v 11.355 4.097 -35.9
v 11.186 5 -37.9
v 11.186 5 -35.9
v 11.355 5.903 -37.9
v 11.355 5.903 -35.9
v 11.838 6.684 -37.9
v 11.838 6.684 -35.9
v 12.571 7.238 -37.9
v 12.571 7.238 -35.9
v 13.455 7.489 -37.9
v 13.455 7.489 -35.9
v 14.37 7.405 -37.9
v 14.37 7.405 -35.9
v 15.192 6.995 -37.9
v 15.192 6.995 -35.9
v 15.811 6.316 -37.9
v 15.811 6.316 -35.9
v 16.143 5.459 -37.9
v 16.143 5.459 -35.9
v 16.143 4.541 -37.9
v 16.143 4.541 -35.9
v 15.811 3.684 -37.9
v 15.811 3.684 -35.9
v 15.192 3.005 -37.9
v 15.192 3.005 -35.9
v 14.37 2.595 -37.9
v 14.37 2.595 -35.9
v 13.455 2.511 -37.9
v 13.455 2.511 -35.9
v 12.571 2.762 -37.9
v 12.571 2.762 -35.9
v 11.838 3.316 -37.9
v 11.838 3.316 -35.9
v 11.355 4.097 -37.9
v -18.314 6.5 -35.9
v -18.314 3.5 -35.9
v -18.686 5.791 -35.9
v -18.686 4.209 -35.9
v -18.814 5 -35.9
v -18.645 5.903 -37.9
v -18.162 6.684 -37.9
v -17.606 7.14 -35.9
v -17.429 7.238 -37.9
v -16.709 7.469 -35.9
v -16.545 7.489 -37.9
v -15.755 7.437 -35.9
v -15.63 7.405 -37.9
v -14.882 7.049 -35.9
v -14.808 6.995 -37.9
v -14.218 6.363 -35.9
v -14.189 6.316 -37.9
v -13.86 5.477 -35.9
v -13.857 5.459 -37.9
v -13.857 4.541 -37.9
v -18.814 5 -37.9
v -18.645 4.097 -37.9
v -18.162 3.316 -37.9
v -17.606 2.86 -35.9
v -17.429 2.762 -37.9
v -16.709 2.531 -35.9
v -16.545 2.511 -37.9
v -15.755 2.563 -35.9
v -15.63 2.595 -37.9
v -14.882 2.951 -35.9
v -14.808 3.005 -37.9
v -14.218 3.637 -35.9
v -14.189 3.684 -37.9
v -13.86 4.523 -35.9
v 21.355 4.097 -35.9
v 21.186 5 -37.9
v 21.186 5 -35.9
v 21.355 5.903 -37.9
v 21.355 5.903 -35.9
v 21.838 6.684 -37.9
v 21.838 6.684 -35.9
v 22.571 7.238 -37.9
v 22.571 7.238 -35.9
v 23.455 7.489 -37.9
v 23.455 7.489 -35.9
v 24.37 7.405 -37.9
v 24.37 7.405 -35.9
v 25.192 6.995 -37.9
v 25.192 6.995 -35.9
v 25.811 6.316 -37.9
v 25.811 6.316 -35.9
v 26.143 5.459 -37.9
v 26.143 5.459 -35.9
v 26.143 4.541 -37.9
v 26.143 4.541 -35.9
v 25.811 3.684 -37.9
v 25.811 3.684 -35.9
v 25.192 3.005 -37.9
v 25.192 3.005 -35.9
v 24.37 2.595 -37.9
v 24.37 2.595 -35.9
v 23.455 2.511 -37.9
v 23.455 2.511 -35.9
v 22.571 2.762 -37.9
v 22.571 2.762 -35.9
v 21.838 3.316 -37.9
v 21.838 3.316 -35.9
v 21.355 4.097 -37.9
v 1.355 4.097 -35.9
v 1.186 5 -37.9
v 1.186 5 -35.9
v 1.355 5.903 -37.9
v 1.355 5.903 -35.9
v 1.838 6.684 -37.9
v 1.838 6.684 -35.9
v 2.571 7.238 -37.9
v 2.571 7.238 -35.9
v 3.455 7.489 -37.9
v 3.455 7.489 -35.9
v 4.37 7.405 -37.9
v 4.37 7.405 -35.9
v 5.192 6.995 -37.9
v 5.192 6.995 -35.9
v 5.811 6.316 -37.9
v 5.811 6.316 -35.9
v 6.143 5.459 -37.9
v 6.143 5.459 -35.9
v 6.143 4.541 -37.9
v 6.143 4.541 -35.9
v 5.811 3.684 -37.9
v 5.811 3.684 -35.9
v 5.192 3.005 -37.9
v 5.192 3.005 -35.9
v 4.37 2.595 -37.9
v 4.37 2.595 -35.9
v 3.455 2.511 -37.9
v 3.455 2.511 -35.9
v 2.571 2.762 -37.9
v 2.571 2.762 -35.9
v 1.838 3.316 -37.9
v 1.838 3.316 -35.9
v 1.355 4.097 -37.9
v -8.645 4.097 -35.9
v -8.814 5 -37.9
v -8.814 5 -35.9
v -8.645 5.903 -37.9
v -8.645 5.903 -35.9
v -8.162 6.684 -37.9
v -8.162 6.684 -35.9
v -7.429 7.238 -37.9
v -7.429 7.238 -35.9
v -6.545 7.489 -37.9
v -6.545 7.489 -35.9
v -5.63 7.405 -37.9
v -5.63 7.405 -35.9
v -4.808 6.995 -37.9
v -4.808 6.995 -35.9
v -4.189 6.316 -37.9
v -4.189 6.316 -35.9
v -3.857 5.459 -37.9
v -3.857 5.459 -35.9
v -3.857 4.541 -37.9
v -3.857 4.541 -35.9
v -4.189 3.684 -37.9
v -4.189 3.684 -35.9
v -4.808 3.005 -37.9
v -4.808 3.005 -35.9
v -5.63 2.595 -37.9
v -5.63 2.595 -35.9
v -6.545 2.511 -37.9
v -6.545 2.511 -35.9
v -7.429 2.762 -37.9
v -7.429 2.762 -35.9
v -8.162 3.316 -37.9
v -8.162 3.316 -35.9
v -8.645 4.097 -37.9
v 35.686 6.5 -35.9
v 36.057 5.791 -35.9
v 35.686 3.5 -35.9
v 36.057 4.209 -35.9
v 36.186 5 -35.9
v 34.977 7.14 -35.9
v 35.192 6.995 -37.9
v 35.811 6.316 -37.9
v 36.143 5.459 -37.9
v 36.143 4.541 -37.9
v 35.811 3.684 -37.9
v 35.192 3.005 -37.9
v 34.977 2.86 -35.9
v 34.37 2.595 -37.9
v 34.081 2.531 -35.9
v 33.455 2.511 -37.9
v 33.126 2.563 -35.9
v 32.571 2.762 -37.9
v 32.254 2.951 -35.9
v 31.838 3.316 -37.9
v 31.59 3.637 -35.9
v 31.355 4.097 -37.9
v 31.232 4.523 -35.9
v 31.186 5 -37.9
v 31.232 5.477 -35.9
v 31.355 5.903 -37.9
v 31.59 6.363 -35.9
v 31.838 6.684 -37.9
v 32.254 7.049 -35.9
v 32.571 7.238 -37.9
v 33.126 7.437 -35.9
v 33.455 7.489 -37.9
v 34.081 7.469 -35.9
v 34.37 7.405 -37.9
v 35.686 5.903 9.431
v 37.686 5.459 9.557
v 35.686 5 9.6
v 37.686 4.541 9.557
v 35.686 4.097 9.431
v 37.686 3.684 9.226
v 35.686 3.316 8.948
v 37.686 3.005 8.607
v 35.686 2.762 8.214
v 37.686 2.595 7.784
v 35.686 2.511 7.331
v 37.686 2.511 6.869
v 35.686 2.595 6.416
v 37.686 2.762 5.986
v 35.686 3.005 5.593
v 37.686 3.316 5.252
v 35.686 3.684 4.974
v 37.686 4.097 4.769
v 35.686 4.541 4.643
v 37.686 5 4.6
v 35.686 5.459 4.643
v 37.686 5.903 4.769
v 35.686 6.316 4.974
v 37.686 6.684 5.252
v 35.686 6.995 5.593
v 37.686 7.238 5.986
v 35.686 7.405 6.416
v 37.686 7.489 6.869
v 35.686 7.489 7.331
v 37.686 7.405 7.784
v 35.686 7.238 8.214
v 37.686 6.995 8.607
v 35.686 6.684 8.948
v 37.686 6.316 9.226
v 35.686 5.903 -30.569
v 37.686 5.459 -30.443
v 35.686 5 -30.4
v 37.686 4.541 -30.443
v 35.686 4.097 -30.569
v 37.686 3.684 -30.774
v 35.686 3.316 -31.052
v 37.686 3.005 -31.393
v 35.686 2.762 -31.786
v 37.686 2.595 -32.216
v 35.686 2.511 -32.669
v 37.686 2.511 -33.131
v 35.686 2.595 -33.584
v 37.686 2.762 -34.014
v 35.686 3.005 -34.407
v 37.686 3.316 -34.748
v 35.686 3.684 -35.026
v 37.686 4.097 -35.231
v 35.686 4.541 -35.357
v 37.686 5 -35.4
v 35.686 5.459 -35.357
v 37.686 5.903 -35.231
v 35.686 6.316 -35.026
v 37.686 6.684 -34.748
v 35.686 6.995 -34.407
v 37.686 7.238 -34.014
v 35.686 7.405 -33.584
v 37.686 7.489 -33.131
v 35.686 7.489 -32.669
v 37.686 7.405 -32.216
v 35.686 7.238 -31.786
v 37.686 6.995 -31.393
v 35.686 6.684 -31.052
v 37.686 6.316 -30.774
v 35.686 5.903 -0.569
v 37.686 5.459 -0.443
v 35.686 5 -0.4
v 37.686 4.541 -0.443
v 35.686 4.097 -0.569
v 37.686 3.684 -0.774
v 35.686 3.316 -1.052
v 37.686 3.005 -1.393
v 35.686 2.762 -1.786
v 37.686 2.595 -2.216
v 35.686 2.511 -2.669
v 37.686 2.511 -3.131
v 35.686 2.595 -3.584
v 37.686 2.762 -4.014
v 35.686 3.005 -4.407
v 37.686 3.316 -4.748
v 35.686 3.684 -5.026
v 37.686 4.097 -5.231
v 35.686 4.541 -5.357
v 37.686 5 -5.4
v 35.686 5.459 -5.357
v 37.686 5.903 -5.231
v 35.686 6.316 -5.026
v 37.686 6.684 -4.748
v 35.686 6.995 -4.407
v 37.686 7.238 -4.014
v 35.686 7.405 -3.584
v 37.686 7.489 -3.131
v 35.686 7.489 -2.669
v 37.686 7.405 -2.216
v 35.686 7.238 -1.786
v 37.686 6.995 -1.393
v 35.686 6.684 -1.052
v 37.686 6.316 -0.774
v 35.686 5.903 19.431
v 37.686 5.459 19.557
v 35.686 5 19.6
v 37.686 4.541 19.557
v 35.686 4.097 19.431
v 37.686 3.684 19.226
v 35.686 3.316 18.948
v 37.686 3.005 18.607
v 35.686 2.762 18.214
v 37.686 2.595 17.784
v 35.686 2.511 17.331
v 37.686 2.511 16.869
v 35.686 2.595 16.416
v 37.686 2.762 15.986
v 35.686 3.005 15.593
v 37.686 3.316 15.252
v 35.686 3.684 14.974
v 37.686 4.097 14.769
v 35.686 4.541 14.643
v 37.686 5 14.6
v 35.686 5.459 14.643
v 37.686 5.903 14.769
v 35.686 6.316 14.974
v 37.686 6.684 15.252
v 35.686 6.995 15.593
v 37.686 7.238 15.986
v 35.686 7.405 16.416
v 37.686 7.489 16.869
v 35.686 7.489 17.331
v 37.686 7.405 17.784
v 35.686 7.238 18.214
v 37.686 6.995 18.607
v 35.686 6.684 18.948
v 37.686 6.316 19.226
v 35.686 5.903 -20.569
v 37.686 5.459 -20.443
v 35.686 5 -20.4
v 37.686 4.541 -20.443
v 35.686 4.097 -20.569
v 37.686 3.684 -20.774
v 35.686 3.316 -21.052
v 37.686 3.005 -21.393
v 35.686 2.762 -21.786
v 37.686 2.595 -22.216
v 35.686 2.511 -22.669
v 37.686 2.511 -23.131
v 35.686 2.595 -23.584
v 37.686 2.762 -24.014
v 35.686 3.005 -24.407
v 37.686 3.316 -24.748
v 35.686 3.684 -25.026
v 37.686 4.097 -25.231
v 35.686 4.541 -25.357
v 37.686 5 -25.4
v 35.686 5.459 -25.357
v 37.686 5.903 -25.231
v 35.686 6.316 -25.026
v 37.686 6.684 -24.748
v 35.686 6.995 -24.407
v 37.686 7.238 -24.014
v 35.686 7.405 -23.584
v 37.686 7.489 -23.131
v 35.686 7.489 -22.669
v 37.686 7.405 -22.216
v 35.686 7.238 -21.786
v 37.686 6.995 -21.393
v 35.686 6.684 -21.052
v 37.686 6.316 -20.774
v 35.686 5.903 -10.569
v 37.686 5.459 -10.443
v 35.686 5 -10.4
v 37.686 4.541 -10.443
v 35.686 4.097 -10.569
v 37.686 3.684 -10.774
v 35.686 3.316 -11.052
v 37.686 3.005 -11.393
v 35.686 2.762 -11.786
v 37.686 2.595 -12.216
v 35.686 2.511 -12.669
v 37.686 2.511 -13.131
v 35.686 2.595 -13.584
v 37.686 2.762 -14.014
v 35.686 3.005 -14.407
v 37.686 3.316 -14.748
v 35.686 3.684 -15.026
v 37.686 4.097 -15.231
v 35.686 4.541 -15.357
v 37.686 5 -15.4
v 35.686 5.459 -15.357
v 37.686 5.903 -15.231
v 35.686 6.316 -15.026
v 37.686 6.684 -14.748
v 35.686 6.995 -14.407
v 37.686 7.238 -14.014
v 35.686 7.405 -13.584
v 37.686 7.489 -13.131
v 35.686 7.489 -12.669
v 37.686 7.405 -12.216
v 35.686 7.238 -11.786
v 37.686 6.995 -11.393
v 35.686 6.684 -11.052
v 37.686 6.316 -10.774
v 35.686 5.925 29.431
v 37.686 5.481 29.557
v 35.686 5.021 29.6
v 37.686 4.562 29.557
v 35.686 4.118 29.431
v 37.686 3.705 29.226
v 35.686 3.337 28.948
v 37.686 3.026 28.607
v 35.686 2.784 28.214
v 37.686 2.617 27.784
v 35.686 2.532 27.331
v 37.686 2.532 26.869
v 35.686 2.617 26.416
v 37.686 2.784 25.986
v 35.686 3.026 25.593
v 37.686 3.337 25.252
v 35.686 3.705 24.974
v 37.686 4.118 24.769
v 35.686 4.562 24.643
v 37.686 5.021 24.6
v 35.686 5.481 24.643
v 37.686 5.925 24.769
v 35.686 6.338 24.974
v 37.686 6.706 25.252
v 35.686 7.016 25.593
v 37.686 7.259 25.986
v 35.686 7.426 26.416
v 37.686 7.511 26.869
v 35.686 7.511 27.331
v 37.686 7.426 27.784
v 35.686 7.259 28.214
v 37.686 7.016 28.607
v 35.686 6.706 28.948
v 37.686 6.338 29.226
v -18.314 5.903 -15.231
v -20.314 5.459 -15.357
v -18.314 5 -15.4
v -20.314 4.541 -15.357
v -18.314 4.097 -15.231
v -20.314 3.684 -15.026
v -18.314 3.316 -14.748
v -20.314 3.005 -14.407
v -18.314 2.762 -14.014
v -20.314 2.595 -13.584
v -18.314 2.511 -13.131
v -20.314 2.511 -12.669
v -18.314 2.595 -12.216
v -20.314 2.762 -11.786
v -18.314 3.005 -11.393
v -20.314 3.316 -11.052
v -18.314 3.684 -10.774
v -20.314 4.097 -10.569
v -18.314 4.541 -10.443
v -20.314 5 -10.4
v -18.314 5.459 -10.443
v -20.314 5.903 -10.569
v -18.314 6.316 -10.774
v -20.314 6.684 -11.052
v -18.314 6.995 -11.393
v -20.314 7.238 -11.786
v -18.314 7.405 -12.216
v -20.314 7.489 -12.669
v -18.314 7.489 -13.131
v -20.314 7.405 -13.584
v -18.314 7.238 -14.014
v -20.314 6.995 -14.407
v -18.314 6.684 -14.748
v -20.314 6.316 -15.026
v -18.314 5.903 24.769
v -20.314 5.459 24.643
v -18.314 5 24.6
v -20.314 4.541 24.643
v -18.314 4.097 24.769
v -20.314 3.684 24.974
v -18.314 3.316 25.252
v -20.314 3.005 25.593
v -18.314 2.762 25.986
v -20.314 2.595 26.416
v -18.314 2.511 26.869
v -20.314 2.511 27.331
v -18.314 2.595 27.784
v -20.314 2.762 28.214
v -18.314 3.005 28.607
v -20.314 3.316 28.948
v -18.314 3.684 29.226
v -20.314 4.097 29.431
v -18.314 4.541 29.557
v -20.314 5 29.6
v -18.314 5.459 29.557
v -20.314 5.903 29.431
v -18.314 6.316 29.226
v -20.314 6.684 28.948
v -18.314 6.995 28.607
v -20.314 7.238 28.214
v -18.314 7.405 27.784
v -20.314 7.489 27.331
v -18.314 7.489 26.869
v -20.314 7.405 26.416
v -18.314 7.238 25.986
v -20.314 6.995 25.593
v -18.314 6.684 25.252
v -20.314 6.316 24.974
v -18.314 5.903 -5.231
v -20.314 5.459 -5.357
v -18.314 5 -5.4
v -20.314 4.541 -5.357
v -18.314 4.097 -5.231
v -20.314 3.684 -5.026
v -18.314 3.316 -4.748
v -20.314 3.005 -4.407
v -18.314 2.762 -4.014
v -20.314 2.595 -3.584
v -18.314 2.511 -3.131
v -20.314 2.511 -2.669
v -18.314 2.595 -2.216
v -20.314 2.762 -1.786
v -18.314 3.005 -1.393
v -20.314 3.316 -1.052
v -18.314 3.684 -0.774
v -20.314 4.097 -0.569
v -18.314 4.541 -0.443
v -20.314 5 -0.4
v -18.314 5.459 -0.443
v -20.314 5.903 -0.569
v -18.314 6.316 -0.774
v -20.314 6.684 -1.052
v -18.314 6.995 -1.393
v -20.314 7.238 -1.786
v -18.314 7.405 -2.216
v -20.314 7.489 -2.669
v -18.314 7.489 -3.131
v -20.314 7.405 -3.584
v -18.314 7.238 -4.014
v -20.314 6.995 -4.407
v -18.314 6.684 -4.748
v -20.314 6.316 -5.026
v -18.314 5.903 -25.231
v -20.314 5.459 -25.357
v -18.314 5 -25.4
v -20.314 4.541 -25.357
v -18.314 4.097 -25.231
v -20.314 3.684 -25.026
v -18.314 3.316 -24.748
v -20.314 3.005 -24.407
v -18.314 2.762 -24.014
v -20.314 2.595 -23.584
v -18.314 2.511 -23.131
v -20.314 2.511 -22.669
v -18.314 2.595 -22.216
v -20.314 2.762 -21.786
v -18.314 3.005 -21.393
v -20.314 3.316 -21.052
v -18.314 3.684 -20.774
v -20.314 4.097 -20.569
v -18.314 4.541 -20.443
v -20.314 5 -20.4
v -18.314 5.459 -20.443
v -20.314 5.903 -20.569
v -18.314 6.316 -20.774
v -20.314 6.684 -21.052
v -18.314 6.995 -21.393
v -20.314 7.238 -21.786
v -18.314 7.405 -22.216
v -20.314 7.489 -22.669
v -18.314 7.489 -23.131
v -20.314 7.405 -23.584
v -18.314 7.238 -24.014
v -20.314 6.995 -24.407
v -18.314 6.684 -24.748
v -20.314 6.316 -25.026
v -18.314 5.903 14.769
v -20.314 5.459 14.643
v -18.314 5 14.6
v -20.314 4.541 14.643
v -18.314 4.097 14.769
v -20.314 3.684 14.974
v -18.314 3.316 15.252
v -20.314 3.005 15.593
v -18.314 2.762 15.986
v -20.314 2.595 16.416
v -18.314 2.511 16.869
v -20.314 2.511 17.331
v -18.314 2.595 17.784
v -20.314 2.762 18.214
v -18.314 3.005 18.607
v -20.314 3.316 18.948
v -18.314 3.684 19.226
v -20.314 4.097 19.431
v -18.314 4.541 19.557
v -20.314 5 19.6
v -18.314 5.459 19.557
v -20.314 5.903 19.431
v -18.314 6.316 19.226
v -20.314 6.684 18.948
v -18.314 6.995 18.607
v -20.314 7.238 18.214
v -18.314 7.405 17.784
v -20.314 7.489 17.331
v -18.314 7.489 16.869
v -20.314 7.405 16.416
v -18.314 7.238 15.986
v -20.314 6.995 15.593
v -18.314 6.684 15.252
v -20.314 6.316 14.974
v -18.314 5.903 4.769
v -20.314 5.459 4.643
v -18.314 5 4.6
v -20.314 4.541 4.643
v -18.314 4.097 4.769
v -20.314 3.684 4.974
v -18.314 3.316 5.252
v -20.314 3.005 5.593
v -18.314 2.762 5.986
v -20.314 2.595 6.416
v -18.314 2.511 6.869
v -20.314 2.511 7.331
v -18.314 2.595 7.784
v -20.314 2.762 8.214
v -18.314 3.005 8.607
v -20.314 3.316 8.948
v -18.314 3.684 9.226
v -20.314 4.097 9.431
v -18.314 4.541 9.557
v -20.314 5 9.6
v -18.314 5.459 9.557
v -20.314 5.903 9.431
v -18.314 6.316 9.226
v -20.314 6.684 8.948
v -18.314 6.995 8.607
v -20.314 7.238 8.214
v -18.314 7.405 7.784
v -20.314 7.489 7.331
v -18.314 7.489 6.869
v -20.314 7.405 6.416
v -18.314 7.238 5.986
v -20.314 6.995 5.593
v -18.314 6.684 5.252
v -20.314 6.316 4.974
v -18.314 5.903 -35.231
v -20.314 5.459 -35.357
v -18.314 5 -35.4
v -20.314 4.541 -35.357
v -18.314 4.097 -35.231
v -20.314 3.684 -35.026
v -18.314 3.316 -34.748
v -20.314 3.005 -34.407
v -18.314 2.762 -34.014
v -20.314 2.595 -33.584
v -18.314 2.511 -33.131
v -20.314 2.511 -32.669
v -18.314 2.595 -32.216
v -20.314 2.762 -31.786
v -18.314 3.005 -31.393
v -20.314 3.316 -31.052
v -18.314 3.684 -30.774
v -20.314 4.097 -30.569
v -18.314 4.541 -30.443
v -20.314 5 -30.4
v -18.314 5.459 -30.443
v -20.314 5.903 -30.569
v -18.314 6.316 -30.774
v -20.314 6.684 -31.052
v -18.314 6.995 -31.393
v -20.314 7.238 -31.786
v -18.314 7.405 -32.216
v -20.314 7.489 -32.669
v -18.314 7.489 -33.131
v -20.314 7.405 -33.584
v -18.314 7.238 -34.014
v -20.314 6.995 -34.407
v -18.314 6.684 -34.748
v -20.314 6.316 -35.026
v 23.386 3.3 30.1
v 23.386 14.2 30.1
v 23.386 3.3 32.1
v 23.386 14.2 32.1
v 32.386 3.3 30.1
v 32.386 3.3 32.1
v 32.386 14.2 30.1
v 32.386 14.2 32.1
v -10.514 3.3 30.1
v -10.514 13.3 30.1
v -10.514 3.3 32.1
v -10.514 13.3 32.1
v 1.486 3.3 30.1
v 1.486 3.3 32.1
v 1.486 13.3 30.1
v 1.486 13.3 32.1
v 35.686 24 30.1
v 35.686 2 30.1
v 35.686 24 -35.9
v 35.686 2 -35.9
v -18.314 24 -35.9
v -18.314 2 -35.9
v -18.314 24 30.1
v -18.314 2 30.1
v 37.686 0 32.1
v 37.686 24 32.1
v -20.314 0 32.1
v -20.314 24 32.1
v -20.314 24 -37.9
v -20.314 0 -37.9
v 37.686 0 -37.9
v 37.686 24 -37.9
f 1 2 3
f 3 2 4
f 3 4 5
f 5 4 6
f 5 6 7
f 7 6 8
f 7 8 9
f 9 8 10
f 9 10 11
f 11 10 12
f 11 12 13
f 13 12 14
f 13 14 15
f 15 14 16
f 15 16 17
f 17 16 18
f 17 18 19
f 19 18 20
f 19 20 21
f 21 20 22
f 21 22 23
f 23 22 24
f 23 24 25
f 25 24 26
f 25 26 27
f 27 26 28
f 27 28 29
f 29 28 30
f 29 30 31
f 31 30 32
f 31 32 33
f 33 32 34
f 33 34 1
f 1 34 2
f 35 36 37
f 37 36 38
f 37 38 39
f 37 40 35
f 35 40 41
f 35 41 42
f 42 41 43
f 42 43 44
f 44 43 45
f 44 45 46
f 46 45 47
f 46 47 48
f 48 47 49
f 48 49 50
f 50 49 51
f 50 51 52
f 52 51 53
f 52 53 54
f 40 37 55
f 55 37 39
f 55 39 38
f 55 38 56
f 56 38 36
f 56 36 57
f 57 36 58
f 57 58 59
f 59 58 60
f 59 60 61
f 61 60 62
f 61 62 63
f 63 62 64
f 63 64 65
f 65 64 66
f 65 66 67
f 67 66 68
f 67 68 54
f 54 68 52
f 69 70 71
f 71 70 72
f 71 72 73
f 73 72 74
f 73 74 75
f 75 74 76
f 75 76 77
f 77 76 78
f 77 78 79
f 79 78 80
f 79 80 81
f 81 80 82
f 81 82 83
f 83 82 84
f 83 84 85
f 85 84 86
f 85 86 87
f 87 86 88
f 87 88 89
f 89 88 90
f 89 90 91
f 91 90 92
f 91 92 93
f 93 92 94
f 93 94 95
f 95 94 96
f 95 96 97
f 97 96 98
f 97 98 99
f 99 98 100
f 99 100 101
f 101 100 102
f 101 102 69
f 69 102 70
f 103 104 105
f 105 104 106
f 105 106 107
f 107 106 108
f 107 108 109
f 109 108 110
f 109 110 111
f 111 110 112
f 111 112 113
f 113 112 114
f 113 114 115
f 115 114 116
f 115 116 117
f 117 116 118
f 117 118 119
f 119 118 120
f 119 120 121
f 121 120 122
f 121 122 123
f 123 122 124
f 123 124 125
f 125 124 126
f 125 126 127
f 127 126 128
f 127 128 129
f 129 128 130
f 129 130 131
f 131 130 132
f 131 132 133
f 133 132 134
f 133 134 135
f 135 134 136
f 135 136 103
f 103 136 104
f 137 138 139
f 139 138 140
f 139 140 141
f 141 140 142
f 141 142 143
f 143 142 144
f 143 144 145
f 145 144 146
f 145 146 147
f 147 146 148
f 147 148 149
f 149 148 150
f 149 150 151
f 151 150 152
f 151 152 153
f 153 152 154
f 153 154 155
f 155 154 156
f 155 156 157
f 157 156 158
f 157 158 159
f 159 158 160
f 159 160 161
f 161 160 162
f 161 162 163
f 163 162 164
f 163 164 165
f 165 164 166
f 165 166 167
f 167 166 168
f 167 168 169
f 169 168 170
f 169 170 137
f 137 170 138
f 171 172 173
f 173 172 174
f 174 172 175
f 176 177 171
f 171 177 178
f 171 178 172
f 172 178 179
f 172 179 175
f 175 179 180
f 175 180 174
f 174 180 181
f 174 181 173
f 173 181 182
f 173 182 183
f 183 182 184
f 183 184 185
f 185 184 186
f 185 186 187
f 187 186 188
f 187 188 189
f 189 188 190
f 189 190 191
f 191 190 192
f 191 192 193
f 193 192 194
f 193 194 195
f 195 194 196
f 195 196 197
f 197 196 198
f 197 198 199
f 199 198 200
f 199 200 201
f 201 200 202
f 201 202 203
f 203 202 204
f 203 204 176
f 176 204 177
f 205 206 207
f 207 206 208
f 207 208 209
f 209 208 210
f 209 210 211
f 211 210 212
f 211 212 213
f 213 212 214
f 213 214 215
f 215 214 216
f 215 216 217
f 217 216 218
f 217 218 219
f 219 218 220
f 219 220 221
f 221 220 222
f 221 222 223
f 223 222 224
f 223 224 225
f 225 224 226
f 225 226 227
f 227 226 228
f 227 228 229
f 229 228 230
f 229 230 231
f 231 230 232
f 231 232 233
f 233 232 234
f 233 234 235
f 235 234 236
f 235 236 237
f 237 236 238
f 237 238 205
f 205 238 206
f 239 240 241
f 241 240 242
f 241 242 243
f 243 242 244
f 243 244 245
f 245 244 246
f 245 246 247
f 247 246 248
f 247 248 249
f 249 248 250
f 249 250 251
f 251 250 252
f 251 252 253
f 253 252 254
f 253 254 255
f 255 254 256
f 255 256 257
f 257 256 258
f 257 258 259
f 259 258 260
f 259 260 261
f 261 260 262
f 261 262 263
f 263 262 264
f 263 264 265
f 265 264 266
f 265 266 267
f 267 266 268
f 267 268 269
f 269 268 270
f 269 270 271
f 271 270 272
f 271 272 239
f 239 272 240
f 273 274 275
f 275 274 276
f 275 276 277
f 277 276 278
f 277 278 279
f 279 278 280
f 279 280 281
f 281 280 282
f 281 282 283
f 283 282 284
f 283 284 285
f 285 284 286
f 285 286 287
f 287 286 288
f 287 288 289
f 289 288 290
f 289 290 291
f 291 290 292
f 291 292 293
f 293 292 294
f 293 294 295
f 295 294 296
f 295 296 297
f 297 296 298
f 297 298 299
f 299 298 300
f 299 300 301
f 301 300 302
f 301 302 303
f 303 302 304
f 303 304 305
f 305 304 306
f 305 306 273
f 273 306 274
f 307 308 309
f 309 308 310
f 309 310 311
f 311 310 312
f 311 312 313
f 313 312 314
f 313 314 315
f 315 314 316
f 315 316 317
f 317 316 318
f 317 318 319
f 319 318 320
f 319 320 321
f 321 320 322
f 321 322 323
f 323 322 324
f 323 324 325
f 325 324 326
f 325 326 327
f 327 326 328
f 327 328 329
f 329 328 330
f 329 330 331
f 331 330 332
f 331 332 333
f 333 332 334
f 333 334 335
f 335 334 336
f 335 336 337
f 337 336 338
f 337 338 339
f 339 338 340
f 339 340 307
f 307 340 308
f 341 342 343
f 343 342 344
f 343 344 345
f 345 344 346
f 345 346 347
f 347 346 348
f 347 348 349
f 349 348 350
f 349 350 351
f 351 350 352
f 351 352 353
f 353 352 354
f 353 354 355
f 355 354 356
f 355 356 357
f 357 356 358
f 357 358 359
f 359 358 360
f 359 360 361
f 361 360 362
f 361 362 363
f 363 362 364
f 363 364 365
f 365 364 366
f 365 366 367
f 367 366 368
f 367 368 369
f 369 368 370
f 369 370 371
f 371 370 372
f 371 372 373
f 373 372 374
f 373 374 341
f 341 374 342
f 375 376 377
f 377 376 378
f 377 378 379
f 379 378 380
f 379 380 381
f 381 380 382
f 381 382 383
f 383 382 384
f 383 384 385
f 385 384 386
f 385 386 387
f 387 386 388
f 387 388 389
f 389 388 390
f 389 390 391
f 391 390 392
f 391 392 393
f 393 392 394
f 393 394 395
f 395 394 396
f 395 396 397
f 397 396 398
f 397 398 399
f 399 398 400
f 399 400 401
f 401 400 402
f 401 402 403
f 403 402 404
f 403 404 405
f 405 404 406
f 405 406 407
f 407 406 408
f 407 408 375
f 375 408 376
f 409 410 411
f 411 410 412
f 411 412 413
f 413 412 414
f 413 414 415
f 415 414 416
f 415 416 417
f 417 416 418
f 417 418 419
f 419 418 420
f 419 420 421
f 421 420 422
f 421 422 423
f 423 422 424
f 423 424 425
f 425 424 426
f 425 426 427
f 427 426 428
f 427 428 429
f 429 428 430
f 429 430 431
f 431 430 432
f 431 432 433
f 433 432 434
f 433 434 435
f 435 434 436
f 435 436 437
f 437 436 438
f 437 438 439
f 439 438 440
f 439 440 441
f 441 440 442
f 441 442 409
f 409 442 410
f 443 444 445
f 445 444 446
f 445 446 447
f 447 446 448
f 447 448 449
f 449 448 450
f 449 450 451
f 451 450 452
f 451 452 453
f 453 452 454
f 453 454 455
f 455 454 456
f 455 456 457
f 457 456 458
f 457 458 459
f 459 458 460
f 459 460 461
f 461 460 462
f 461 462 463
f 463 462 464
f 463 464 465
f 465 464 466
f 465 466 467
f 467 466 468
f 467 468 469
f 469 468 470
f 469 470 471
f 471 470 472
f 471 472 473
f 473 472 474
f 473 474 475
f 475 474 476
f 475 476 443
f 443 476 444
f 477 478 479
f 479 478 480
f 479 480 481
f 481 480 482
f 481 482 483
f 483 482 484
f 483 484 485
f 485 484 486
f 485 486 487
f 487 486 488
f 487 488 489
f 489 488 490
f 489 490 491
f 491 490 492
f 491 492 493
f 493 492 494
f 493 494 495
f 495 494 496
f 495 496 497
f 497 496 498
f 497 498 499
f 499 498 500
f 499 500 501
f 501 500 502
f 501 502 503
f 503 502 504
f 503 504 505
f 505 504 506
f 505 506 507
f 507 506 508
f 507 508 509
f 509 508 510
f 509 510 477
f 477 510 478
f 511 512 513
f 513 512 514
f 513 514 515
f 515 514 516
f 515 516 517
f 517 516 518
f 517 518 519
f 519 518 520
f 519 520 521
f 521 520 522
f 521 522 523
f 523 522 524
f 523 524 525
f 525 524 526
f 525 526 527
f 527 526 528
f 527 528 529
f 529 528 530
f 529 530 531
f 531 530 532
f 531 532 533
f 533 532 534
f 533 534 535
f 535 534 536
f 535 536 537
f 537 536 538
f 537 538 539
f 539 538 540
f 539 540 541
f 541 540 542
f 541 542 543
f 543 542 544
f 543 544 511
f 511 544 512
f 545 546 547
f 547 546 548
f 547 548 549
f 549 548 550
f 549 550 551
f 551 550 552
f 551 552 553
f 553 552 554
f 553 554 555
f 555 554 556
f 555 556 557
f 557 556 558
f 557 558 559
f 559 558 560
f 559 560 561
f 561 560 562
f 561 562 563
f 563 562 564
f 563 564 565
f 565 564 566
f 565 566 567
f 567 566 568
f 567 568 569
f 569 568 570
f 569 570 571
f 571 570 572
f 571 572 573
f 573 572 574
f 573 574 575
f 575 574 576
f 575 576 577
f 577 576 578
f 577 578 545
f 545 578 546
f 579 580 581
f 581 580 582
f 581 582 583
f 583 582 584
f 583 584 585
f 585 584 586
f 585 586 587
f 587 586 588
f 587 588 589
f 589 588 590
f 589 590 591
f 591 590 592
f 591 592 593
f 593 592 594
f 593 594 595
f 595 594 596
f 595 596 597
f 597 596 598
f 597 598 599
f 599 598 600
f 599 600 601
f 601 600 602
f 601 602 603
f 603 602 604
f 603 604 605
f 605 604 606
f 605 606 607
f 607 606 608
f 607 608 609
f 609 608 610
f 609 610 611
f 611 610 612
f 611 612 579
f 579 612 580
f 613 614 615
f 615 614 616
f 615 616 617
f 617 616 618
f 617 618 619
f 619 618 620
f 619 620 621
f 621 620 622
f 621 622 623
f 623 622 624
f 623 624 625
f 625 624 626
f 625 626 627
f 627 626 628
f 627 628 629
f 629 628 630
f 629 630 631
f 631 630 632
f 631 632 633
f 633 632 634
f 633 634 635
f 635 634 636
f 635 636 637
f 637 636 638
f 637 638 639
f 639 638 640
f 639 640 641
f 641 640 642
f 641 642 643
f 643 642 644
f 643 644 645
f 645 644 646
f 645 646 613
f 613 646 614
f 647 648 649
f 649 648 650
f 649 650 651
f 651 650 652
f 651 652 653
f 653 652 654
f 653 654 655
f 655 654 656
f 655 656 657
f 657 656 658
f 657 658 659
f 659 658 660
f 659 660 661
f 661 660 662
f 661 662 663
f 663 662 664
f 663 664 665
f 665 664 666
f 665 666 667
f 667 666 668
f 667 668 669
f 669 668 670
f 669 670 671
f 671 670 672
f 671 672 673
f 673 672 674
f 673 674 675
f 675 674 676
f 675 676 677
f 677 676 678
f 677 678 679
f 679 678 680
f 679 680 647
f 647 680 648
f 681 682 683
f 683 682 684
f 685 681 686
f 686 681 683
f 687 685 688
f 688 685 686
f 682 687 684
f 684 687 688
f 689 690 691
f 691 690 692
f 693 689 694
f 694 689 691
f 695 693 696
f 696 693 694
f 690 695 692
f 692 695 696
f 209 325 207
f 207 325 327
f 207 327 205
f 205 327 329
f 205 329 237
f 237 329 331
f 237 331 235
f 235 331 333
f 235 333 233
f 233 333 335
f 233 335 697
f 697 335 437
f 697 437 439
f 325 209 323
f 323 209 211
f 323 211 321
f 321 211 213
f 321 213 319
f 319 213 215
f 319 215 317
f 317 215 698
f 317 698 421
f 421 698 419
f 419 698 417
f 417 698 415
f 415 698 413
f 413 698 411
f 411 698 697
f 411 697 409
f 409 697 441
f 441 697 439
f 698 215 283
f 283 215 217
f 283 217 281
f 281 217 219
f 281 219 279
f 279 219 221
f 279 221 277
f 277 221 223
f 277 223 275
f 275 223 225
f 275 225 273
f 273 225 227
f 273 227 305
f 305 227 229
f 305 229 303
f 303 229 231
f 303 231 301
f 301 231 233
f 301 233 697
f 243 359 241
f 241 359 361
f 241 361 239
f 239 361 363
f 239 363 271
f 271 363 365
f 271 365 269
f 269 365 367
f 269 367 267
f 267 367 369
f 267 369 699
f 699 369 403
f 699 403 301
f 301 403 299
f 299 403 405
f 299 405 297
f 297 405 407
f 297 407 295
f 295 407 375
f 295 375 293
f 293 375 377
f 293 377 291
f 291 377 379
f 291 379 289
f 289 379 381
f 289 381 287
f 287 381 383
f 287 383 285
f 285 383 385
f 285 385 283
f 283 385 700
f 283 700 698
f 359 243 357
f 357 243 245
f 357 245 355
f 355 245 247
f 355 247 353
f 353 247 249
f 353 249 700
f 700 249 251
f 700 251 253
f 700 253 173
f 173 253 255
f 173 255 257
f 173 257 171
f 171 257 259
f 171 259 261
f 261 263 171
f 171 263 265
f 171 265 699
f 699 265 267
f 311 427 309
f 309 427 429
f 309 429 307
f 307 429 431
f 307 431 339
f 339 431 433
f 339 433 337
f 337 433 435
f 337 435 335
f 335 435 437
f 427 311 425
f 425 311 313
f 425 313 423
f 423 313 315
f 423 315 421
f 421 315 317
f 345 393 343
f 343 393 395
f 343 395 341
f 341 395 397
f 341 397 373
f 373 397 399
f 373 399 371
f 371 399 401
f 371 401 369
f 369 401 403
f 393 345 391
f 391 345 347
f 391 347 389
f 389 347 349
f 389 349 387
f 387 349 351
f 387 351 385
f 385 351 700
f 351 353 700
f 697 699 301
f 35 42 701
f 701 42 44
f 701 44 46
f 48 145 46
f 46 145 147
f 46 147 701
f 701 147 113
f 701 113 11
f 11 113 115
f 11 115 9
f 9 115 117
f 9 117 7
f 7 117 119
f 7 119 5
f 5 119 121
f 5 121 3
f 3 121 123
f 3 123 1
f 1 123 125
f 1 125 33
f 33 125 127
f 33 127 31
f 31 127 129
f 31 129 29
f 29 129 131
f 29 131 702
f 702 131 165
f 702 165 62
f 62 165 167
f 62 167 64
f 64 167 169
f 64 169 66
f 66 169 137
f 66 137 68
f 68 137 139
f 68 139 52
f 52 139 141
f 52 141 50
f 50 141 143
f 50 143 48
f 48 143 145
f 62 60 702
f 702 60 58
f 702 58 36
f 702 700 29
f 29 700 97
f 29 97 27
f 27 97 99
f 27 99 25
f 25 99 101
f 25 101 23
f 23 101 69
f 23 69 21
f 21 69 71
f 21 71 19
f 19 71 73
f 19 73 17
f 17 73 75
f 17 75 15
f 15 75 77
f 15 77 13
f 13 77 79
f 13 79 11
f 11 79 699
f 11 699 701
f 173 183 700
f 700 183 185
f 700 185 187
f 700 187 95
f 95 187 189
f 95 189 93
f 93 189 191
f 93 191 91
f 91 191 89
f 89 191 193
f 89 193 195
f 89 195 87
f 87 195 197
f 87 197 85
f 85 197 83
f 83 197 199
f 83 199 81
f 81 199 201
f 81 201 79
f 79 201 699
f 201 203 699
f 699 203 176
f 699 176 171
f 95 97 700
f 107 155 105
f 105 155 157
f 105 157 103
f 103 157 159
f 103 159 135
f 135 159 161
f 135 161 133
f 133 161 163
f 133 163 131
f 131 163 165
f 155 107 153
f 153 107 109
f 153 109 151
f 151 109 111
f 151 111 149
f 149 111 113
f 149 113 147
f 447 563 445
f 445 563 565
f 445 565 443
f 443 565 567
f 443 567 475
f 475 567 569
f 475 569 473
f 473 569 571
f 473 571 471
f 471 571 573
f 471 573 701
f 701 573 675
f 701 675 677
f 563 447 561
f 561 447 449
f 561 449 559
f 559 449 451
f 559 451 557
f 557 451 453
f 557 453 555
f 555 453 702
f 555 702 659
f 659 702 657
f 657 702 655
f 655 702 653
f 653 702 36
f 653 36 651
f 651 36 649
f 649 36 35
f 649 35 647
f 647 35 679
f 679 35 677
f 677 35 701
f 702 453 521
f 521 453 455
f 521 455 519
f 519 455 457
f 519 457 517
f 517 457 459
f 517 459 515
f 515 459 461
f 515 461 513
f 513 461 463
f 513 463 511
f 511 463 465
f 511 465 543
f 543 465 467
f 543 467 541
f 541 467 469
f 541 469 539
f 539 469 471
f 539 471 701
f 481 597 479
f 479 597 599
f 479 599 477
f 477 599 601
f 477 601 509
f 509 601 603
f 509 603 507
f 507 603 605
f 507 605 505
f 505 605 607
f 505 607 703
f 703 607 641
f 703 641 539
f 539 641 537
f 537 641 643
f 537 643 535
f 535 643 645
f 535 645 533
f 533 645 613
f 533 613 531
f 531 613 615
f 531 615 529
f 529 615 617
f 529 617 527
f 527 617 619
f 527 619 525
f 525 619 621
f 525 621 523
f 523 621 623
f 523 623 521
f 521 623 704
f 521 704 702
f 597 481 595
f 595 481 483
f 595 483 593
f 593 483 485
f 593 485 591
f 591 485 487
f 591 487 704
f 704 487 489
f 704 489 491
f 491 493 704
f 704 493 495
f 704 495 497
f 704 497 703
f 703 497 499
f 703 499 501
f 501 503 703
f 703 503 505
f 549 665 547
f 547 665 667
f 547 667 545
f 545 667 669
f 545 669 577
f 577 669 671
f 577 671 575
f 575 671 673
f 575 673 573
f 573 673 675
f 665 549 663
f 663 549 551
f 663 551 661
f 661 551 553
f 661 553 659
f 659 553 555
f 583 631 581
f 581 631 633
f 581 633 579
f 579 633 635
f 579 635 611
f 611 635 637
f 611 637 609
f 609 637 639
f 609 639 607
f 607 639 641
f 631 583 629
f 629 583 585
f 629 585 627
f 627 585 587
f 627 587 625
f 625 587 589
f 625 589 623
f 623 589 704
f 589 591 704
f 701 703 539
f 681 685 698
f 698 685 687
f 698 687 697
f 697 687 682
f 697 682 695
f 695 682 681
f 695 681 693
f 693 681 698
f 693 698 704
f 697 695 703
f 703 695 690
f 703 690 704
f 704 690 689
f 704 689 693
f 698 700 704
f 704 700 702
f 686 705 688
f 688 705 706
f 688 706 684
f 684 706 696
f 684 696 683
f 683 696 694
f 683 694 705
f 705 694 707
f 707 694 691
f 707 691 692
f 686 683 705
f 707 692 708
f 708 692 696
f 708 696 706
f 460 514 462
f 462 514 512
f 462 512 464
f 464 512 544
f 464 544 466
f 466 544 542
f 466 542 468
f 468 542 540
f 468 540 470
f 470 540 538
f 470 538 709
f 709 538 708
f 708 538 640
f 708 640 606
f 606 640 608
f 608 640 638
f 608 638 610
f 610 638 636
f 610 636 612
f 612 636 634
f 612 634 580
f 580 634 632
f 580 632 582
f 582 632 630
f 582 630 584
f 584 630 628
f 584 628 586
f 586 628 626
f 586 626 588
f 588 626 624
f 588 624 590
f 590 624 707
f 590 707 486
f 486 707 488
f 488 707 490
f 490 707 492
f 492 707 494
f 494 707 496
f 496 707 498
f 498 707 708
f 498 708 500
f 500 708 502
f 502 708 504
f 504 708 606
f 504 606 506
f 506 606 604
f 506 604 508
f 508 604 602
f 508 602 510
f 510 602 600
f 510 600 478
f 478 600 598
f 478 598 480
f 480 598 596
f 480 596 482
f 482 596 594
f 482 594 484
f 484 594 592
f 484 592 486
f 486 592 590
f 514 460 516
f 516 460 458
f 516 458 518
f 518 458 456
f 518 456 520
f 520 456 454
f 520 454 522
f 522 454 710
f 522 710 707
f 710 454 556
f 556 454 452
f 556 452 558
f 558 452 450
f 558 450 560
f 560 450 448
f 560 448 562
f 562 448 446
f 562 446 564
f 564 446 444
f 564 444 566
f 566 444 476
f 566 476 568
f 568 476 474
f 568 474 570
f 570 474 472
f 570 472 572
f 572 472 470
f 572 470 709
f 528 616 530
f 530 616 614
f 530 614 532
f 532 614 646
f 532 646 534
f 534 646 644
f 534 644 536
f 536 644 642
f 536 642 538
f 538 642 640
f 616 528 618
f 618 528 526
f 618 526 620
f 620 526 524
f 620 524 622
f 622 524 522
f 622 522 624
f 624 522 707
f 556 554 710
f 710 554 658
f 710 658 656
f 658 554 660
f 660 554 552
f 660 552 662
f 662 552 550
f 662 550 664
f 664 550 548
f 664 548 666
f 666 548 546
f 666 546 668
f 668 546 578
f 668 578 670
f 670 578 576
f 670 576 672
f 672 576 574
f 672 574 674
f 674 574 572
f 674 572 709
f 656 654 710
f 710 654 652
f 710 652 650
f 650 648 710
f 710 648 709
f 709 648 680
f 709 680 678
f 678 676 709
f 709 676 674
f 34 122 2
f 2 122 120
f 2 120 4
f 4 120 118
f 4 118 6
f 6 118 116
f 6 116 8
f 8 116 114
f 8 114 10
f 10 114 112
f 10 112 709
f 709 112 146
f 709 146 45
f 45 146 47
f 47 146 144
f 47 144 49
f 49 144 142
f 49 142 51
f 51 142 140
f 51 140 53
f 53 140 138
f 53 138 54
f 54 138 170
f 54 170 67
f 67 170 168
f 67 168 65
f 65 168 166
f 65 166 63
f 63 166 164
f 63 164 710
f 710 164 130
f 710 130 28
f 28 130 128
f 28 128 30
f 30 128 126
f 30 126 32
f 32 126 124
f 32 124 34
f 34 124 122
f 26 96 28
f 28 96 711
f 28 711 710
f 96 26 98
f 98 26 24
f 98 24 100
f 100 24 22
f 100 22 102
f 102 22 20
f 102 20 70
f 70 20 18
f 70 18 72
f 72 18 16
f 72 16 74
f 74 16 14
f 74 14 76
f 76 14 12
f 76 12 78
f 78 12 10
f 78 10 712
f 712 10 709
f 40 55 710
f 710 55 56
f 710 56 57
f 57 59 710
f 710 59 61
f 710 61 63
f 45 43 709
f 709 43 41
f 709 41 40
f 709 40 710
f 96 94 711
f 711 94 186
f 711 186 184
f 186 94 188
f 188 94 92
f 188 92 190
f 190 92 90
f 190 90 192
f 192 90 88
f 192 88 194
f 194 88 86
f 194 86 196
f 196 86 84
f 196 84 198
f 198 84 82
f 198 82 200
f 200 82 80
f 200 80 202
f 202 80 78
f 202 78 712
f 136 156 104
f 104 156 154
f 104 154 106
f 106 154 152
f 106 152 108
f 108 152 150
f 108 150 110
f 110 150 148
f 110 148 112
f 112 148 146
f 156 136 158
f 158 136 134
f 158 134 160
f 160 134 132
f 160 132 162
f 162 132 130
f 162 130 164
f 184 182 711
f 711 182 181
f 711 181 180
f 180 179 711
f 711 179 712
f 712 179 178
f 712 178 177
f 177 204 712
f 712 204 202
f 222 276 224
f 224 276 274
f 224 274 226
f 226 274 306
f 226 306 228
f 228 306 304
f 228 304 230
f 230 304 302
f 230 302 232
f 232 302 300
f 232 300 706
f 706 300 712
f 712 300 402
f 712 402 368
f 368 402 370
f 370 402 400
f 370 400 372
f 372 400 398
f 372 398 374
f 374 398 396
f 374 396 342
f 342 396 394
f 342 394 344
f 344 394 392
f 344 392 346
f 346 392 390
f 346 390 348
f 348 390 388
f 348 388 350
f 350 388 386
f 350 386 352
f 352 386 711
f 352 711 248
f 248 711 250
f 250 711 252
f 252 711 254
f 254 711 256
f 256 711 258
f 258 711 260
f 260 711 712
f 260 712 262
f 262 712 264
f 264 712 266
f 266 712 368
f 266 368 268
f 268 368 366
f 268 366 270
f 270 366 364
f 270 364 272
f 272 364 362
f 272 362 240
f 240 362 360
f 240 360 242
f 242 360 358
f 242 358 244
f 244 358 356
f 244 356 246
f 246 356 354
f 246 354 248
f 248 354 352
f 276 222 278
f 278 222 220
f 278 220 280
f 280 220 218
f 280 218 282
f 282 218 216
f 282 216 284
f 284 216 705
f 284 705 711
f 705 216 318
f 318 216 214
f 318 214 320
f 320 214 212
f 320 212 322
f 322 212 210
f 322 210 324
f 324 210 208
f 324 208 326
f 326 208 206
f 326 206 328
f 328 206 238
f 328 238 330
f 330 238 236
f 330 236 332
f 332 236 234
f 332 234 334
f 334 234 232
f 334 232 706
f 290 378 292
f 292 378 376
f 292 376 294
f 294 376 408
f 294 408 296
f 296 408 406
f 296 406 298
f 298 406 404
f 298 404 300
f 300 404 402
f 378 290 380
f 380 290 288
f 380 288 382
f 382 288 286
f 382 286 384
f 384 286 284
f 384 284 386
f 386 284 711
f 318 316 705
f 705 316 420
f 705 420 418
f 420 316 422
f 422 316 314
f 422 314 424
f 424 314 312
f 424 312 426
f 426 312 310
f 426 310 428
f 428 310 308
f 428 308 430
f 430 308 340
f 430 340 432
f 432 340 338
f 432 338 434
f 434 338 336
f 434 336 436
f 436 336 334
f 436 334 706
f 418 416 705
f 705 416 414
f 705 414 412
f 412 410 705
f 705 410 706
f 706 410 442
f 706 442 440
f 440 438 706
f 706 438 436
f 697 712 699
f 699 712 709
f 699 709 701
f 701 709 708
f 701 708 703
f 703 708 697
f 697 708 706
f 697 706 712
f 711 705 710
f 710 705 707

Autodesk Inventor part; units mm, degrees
ref_plane "YZ Plane" through (0, 0, 0) normal (1, 0, 0) x (0, 1, 0)
ref_plane "XZ Plane" through (0, 0, 0) normal (0, 1, 0) x (-1, 0, 0)
ref_plane "XY Plane" through (0, 0, 0) normal (0, 0, 1) x (1, 0, 0)
sketch "Sketch1" plane through (0, 0, 0) normal (0, 1, 0) x (-1, 0, 0)
  point P0 (0, 0)
sketch "Sketch2" plane through (0, 0, 0) normal (0, 1, 0) x (-1, 0, 0)
  point P0 (0, 0)
sketch "Sketch3" plane through (0, 0, 0) normal (0, 1, 0) x (-1, 0, 0)
  line L0 (20.3143, 32.1) -> (-37.6857, 32.1)
  line L1 (-37.6857, 32.1) -> (-37.6857, -37.9)
  line L2 (-37.6857, -37.9) -> (20.3143, -37.9)
  line L3 (20.3143, -37.9) -> (20.3143, 32.1)
  point P0 (0, 0)
  dimension "d0" = 70
  dimension "d1" = 58
extrude "Extrusion1" add sketch "Sketch3" along normal blind 24
sketch "Sketch4" plane through (0, 24, 0) normal (0, 1, 0) x (1, 0, 0)
  point P0 (0, 0)
sketch "Sketch5" plane through (0, 24, 0) normal (0, 1, 0) x (1, 0, 0)
  line L0 (-18.3143, 35.9) -> (35.6857, 35.9)
  line L1 (35.6857, 35.9) -> (35.6857, -30.1)
  line L2 (35.6857, -30.1) -> (-18.3143, -30.1)
  line L3 (-18.3143, -30.1) -> (-18.3143, 35.9)
  line L4 (37.6857, -32.1) -> (37.6857, 37.9) projected
  line L5 (-20.3143, -32.1) -> (37.6857, -32.1) projected
  line L6 (-20.3143, 37.9) -> (-20.3143, -32.1) projected
  line L7 (37.6857, 37.9) -> (-20.3143, 37.9) projected
  point P0 (0, 0)
  dimension "d4" = 2
  dimension "d5" = 2
  dimension "d6" = 2
  dimension "d7" = 2
extrude "Extrusion2" cut sketch "Sketch5" against normal blind 22 contours L0 L1 L2 L3
sketch "Sketch6" plane through (-20.3143, 0, 32.1) normal (0, 0, 1) x (1, 0, 0)
  line L0 (9.8, 13.3) -> (21.8, 13.3)
  line L1 (21.8, 13.3) -> (21.8, 3.3)
  line L2 (21.8, 3.3) -> (9.8, 3.3)
  line L3 (9.8, 3.3) -> (9.8, 13.3)
  line L4 (0, 0) -> (0, 24) projected
  line L5 (0, 0) -> (58, 0) projected
  point P0 (20.3143, 0)
  dimension "d10" = 9.8
  dimension "d11" = 12
  dimension "d12" = 10
  dimension "d13" = 3.3
extrude "Extrusion3" cut sketch "Sketch6" against normal blind 22.45
sketch "Sketch7" plane through (-20.3143, 0, 32.1) normal (0, 0, 1) x (1, 0, 0)
  line L0 (43.7, 14.2) -> (52.7, 14.2)
  line L1 (52.7, 14.2) -> (52.7, 3.3)
  line L2 (52.7, 3.3) -> (43.7, 3.3)
  line L3 (43.7, 3.3) -> (43.7, 14.2)
  line L4 (58, 0) -> (58, 24) projected
  line L5 (0, 0) -> (58, 0) projected
  point P0 (20.3143, 0)
  dimension "d16" = 5.3
  dimension "d17" = 9
  dimension "d18" = 10.9
  dimension "d19" = 3.3
extrude "Extrusion4" cut sketch "Sketch7" against normal blind 25.175
sketch "Sketch8" plane through (-20.3143, 0, -37.9) normal (-1, 0, 0) x (0, 0, 1)
  circle A0 centre (65, 5) radius 2.5
  line L0 (0, 0) -> (70, 0) projected
  line L1 (70, 0) -> (70, 24) projected
  circle A1 centre (55, 5) radius 2.5
  circle A2 centre (45, 5) radius 2.5
  circle A3 centre (35, 5) radius 2.5
  circle A4 centre (25, 5) radius 2.5
  circle A5 centre (15, 5) radius 2.5
  circle A6 centre (5, 5) radius 2.5
  point P0 (37.9, 0)
  point P1 (35, 0)
  dimension "d22" = 5
  dimension "d23" = 5
  dimension "d24" = 5
  dimension "d25" = 5
  dimension "d26" = 10
  dimension "d27" = 5
  dimension "d28" = 5
  dimension "d29" = 5
  dimension "d30" = 10
  dimension "d31" = 5
  dimension "d32" = 10
  dimension "d33" = 5
  dimension "d34" = 5
  dimension "d35" = 10
  dimension "d36" = 5
  dimension "d37" = 5
  dimension "d38" = 5
  dimension "d39" = 10
  dimension "d40" = 5
  dimension "d41" = 10
  dimension "d42" = 5
extrude "Extrusion5" cut sketch "Sketch8" against normal blind 44.225
sketch "Sketch9" plane through (-20.3143, 0, -37.9) normal (-1, 0, 0) x (0, 0, 1)
  point P0 (37.9, 0)
sketch "Sketch10" plane through (37.6857, 0, 32.1) normal (1, 0, 0) x (0, 0, -1)
  circle A0 centre (5, 5.0214) radius 2.5
  line L0 (0, 0) -> (0, 24) projected
  circle A1 centre (15, 5) radius 2.5
  line L1 (0, 0) -> (70, 0) projected
  circle A2 centre (25, 5) radius 2.5
  circle A3 centre (35, 5) radius 2.5
  circle A4 centre (45, 5) radius 2.5
  circle A5 centre (55, 5) radius 2.5
  circle A6 centre (65, 5) radius 2.5
  point P0 (32.1, 0)
  dimension "d45" = 5
  dimension "d46" = 5
  dimension "d47" = 5
  dimension "d48" = 10
  dimension "d49" = 5
  dimension "d50" = 5
  dimension "d51" = 5
  dimension "d52" = 10
  dimension "d53" = 5
  dimension "d54" = 5
  dimension "d55" = 10
  dimension "d56" = 5
  dimension "d57" = 10
  dimension "d58" = 5
  dimension "d59" = 5
  dimension "d60" = 5
  dimension "d61" = 10
  dimension "d62" = 5
  dimension "d63" = 10
  dimension "d64" = 5
extrude "Extrusion6" cut sketch "Sketch10" against normal blind 41.5
sketch "Sketch11" plane through (37.6857, 0, -37.9) normal (0, 0, -1) x (-1, 0, 0)
  circle A0 centre (4, 5) radius 2.5
  line L0 (0, 0) -> (0, 24) projected
  line L1 (0, 0) -> (58, 0) projected
  circle A1 centre (14, 5) radius 2.5
  circle A2 centre (24, 5) radius 2.5
  circle A3 centre (34, 5) radius 2.5
  circle A4 centre (44, 5) radius 2.5
  circle A5 centre (54, 5) radius 2.5
  point P0 (37.6857, 0)
  dimension "d67" = 5
  dimension "d68" = 4
  dimension "d69" = 5
  dimension "d70" = 5
  dimension "d71" = 10
  dimension "d72" = 5
  dimension "d73" = 5
  dimension "d74" = 10
  dimension "d75" = 5
  dimension "d76" = 5
  dimension "d77" = 10
  dimension "d78" = 5
  dimension "d79" = 5
  dimension "d80" = 10
  dimension "d81" = 5
  dimension "d82" = 5
  dimension "d83" = 10
  dimension "d84" = 5
extrude "Extrusion7" cut sketch "Sketch11" against normal blind 2
properties part number "junction box"
